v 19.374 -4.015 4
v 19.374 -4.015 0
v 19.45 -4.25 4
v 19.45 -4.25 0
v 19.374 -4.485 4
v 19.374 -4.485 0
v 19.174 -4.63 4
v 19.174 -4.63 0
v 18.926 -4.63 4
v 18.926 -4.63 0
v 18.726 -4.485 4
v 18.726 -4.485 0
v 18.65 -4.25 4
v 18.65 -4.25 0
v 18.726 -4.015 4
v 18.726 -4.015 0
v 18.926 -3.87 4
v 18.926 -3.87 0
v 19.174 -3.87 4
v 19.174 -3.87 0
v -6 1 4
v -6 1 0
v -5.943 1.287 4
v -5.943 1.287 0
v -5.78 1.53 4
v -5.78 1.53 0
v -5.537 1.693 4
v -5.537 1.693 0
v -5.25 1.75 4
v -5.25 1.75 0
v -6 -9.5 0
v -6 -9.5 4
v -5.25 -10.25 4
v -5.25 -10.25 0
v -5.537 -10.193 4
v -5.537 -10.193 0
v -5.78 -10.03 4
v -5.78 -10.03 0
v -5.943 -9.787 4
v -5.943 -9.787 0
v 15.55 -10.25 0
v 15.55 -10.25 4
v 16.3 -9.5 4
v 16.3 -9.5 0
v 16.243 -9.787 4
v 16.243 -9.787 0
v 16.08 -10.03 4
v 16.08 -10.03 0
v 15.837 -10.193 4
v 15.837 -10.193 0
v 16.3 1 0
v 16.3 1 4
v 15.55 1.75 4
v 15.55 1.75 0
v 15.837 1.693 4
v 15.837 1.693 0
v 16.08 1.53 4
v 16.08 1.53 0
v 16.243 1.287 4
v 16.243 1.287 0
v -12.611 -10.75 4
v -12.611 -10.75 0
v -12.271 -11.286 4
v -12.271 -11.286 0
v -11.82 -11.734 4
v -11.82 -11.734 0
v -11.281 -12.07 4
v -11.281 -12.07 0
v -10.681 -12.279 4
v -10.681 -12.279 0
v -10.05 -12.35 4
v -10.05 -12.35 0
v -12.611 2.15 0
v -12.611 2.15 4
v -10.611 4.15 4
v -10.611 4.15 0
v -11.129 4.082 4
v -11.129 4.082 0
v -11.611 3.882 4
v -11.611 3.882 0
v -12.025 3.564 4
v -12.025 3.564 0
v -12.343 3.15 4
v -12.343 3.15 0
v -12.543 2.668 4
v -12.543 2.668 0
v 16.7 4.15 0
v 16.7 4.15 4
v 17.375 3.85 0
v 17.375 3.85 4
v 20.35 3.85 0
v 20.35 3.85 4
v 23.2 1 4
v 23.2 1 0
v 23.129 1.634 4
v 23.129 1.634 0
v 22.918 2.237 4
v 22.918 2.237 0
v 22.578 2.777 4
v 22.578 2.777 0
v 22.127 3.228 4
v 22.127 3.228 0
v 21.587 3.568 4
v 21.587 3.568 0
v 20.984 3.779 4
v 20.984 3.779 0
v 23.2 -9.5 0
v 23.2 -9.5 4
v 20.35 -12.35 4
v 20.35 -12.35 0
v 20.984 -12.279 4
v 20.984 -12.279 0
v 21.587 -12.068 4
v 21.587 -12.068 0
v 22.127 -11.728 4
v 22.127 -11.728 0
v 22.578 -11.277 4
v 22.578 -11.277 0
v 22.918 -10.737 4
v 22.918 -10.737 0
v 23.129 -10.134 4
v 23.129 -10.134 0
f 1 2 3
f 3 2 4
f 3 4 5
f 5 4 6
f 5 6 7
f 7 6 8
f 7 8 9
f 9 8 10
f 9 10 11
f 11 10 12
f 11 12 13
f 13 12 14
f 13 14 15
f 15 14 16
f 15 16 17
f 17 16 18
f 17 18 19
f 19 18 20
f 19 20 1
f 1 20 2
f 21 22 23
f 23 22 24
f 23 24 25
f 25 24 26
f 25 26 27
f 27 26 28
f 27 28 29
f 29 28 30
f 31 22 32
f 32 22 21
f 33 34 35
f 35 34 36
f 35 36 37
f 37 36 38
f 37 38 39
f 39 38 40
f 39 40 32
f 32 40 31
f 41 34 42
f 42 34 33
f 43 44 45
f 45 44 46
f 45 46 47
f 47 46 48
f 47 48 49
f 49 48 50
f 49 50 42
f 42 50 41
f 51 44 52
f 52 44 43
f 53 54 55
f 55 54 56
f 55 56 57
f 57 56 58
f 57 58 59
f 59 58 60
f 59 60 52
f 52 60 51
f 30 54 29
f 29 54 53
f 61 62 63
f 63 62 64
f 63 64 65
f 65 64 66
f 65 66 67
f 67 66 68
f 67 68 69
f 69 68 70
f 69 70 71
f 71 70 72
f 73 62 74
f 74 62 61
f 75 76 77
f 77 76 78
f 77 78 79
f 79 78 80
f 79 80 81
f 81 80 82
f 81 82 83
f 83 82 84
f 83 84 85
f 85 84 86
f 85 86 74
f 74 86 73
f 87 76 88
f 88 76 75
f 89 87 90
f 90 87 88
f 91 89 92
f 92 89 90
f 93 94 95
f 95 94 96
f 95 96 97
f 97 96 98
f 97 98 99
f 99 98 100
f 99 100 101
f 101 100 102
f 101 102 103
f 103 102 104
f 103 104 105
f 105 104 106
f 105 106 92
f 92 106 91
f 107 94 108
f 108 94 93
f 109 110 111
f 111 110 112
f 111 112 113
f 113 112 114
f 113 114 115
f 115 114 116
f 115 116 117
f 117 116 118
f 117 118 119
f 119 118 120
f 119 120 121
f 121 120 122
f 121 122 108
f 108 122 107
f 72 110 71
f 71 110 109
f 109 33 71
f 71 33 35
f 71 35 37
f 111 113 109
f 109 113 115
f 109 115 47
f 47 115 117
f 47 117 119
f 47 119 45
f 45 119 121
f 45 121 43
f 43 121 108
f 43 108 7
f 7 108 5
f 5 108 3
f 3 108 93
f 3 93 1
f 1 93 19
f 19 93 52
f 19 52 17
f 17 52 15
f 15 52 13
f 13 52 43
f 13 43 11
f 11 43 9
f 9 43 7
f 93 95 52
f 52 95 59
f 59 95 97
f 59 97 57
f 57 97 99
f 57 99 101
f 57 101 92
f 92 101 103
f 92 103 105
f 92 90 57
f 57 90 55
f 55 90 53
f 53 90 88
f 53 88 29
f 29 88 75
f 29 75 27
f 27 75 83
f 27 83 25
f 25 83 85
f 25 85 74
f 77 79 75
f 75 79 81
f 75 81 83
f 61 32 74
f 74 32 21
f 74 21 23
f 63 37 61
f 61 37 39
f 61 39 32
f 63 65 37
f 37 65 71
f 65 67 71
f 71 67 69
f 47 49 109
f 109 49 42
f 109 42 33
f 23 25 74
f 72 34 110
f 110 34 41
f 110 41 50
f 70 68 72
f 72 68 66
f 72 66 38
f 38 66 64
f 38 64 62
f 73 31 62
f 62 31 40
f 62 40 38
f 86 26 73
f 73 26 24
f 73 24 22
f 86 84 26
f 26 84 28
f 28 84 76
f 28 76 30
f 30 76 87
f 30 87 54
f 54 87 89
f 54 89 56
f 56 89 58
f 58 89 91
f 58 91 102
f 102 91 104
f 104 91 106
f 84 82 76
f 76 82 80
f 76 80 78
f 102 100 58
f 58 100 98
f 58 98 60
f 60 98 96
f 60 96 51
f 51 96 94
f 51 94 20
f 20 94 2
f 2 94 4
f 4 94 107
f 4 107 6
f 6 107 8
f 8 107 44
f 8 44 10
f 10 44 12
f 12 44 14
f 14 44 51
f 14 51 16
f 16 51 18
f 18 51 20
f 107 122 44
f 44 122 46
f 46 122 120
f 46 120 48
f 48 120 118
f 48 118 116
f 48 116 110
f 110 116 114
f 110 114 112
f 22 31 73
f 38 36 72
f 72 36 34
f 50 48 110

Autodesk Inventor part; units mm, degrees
ref_plane "YZ Plane" through (0, 0, 0) normal (1, 0, 0) x (0, 1, 0)
ref_plane "XZ Plane" through (0, 0, 0) normal (0, 1, 0) x (-1, 0, 0)
ref_plane "XY Plane" through (0, 0, 0) normal (0, 0, 1) x (1, 0, 0)
ref_plane "Płaszczyzna konstrukcyjna1" through (0, 0, 0) normal (0, 0, 1) x (1, 0, 0)
sketch "Szkic1" plane through (0, 0, 0) normal (0, 0, 1) x (1, 0, 0)
  line L0 (23.2, 1) -> (23.2, -9.5) projected
  arc A0 (23.2, 1) -> (20.35, 3.85) centre (20.35, 1) ccw projected
  line L1 (20.35, 3.85) -> (17.375, 3.85) projected
  line L2 (17.375, 3.85) -> (16.7, 4.15) projected
  line L3 (16.7, 4.15) -> (-6.1, 4.15) projected
  line L4 (-6.1, 4.15) -> (-6.1, 2.15) projected
  line L5 (16.7, 2.15) -> (-6.1, 2.15) projected
  line L6 (16.7, -10.75) -> (16.7, 2.15) projected
  line L7 (16.7, -10.75) -> (-12.6112, -10.75) projected
  arc A1 (-12.6112, -10.75) -> (-10.05, -12.35) centre (-10.05, -9.5) ccw projected
  line L8 (-10.05, -12.35) -> (20.35, -12.35) projected
  arc A2 (20.35, -12.35) -> (23.2, -9.5) centre (20.35, -9.5) ccw projected
  circle A3 centre (19.05, -4.25) radius 0.4 projected
  line L9 (-5.25, 1.85) -> (-10.05, 1.85) projected
  line L10 (-10.9, 1) -> (-10.9, -3.7) projected
  arc A4 (-10.05, 1.85) -> (-10.9, 1) centre (-10.05, 1) ccw projected
  line L11 (-10.9, -4.8) -> (-10.9, -9.5) projected
  arc A5 (-10.9, -9.5) -> (-10.05, -10.35) centre (-10.05, -9.5) ccw projected
  line L12 (-10.05, -10.35) -> (-5.25, -10.35) projected
  line L13 (-12.6112, -10.75) -> (-12.6112, 2.15)
  line L14 (-10.6112, 4.15) -> (-6.1, 4.15)
  arc A6 (-10.6112, 4.15) -> (-12.6112, 2.15) centre (-10.6112, 2.15) ccw
  line L15 (-2.55, 1.95) -> (12.85, 1.95) projected
  line L16 (12.85, -10.45) -> (-2.55, -10.45) projected
  line L17 (-2.55, -10.45) -> (-10.05, -10.35)
  line L18 (12.85, -10.45) -> (16.7, -10.45)
  line L19 (12.85, 1.95) -> (16.7, 1.95)
  line L20 (-2.55, 1.95) -> (-5.25, 1.85)
  line L21 (-10.9, -3.7) -> (-10.9, -4.8)
  line L22 (16.3, 1) -> (16.3, -9.5) projected
  arc A7 (15.55, -10.25) -> (16.3, -9.5) centre (15.55, -9.5) ccw projected
  line L23 (15.55, -10.25) -> (-5.25, -10.25) projected
  arc A8 (-6, -9.5) -> (-5.25, -10.25) centre (-5.25, -9.5) ccw projected
  line L24 (-6, -9.5) -> (-6, 1) projected
  arc A9 (-5.25, 1.75) -> (-6, 1) centre (-5.25, 1) ccw projected
  line L25 (-5.25, 1.75) -> (15.55, 1.75) projected
  arc A10 (16.3, 1) -> (15.55, 1.75) centre (15.55, 1) ccw projected
  line L26 (-1.9, -0.65) -> (1.2, -0.65) projected
  line L27 (-1.9, -1.75) -> (-1.9, -0.65) projected
  line L28 (1.2, -1.75) -> (-1.9, -1.75) projected
  line L29 (1.2, -0.65) -> (1.2, -1.75) projected
  line L30 (5.4, 0.75) -> (5.4, 0.4385) projected
  arc A11 (5.4, 0.75) -> (5.4, -2.85) centre (5.8571, -1.05) ccw projected
  line L31 (5.4, -2.5385) -> (5.4, -2.85) projected
  arc A12 (4.3078, -1.2057) -> (5.4, -2.5385) centre (5.8571, -1.05) ccw projected
  line L32 (5.4, -1.2057) -> (4.3078, -1.2057) projected
  line L33 (5.4, -0.8943) -> (5.4, -1.2057) projected
  line L34 (4.3078, -0.8943) -> (5.4, -0.8943) projected
  arc A13 (5.4, 0.4385) -> (4.3078, -0.8943) centre (5.8571, -1.05) ccw projected
  line L35 (3.9, 0.75) -> (3.9, 0.4385) projected
  arc A14 (3.9, 0.75) -> (3.9, -2.85) centre (4.3571, -1.05) ccw projected
  line L36 (3.9, -2.5385) -> (3.9, -2.85) projected
  arc A15 (3.9, 0.4385) -> (3.9, -2.5385) centre (4.3571, -1.05) ccw projected
  circle A16 centre (-4.75, -8.6) radius 1 projected
  circle A17 centre (15.05, -8.6) radius 1 projected
  circle A18 centre (15.05, 0.1) radius 1 projected
  circle A19 centre (-4.75, 0.1) radius 1 projected
  line L37 (10.7377, -7.5396) -> (10.2468, -7.5396) projected
  line L38 (10.2468, -7.5396) -> (10.2468, -7.75) projected
  line L39 (10.2468, -7.75) -> (11.4156, -7.75) projected
  line L40 (11.4156, -7.75) -> (11.4156, -7.5396) projected
  line L41 (11.4156, -7.5396) -> (10.9247, -7.5396) projected
  line L42 (10.9247, -7.5396) -> (10.9247, -5.95) projected
  line L43 (10.9247, -5.95) -> (10.7377, -5.95) projected
  line L44 (10.7377, -5.95) -> (10.7377, -7.5396) projected
  line L45 (11.626, -7.75) -> (12.1804, -7.75) projected
  spline S0 degree 3 poles (12.1804, -7.75) (12.1963, -7.75) (12.2267, -7.75) (12.2708, -7.7479) (12.3118, -7.7457) (12.3495, -7.7415) (12.384, -7.7369) (12.4153, -7.7312) (12.4433, -7.7239) (12.4607, -7.7181) (12.469, -7.7153) knots 0 0 0 0 0.162643 0.312901 0.453294 0.58413 0.70285 0.811058 0.910586 1 1 1 1 projected
  spline S1 degree 3 poles (12.469, -7.7153) (12.4794, -7.7113) (12.5003, -7.7032) (12.5297, -7.6872) (12.5577, -7.6693) (12.5841, -7.6488) (12.6087, -7.6256) (12.6318, -7.6) (12.653, -7.5717) (12.6725, -7.5411) (12.6907, -7.5086) (12.7057, -7.4738) (12.7192, -7.4375) (12.7294, -7.3991) (12.7381, -7.3591) (12.7436, -7.3172) (12.7476, -7.2734) (12.7479, -7.2436) (12.7481, -7.2284) knots 0 0 0 0 0.056072 0.112012 0.167171 0.222811 0.27891 0.336355 0.395158 0.456072 0.518045 0.581404 0.645662 0.712108 0.780061 0.850885 0.92373 1 1 1 1 projected
  spline S2 degree 3 poles (12.7481, -7.2284) (12.7477, -7.2084) (12.7471, -7.1693) (12.7412, -7.1122) (12.7313, -7.058) (12.7179, -7.0065) (12.7004, -6.9578) (12.6787, -6.912) (12.6533, -6.8689) (12.6243, -6.8285) (12.5902, -6.7918) (12.5498, -6.7603) (12.5042, -6.7334) (12.4527, -6.7121) (12.3959, -6.6948) (12.3332, -6.683) (12.2648, -6.6762) (12.2175, -6.6752) (12.1929, -6.6747) knots 0 0 0 0 0.066633 0.130318 0.191414 0.250222 0.307644 0.363778 0.418941 0.474177 0.529339 0.585724 0.64416 0.705484 0.771261 0.841987 0.917917 1 1 1 1 projected
  line L46 (12.1929, -6.6747) -> (11.813, -6.6747) projected
  line L47 (11.813, -6.6747) -> (11.813, -5.95) projected
  line L48 (11.813, -5.95) -> (11.626, -5.95) projected
  line L49 (11.626, -5.95) -> (11.626, -7.75) projected
  line L50 (-2.2056, -2.52) -> (-2.1, -2.4134) projected
  line L51 (-0.9587, -3.7548) -> (-2.2056, -2.52) projected
  line L52 (-1.121, -5.7025) -> (-0.9587, -3.7548) projected
  line L53 (-2.2056, -6.7765) -> (-1.121, -5.7025) projected
  line L54 (-2.1, -6.8831) -> (-2.2056, -6.7765) projected
  line L55 (-1.1402, -5.9326) -> (-2.1, -6.8831) projected
  line L56 (-1.1875, -6.5) -> (-1.1402, -5.9326) projected
  line L57 (-1.1875, -6.5) -> (-1.5, -6.5) projected
  line L58 (-1.5, -6.65) -> (-1.5, -6.5) projected
  line L59 (-1.2, -6.65) -> (-1.5, -6.65) projected
  arc A20 (-1.2, -6.65) -> (1.2, -6.65) centre (0, -5.75) ccw projected
  line L60 (1.2, -6.65) -> (1.2, -6.15) projected
  line L61 (1.2, -6.15) -> (1.4598, -6.15) projected
  line L62 (2.2, -6.8831) -> (1.4598, -6.15) projected
  line L63 (2.3056, -6.7765) -> (2.2, -6.8831) projected
  line L64 (1.6, -6.0778) -> (2.3056, -6.7765) projected
  line L65 (1.6, -6.0778) -> (1.6, -5.45) projected
  line L66 (1.2, -5.45) -> (1.6, -5.45) projected
  line L67 (1.2, -5.45) -> (1.2, -3.6149) projected
  line L68 (2.3056, -2.52) -> (1.2, -3.6149) projected
  line L69 (2.2, -2.4134) -> (2.3056, -2.52) projected
  line L70 (1.3978, -3.2079) -> (2.2, -2.4134) projected
  arc A21 (1.3978, -3.2079) -> (0.6536, -3.05) centre (1, -3.25) ccw projected
  line L71 (0.6536, -3.05) -> (-0.75, -3.05) projected
  line L72 (-0.75, -3.05) -> (-0.75, -2.75) projected
  line L73 (-0.9, -2.75) -> (-0.75, -2.75) projected
  line L74 (-0.9, -3.05) -> (-0.9, -2.75) projected
  line L75 (-0.9425, -3.5598) -> (-0.9, -3.05) projected
  line L76 (-2.1, -2.4134) -> (-0.9425, -3.5598) projected
  point P0 (0, 0)
  point P1 (-12.6112, 4.15)
  dimension "d0" = 2
extrude "Wyciągnięcie proste1" add sketch "Szkic1" along normal blind 4 contours L0 A2 L8 A1 L7 L6 L5 L4 L3 L2 L1 A0 | L13 A6 L14 L4 L5 L6 L19 L15 L20 L9 A4 L10 L21 L11 A5 L17 L16 L18 L7 | L18 L16 L17 A5 L11 L21 L10 A4 L9 L20 L15 L19 L6
properties part number "ServoPlate"
